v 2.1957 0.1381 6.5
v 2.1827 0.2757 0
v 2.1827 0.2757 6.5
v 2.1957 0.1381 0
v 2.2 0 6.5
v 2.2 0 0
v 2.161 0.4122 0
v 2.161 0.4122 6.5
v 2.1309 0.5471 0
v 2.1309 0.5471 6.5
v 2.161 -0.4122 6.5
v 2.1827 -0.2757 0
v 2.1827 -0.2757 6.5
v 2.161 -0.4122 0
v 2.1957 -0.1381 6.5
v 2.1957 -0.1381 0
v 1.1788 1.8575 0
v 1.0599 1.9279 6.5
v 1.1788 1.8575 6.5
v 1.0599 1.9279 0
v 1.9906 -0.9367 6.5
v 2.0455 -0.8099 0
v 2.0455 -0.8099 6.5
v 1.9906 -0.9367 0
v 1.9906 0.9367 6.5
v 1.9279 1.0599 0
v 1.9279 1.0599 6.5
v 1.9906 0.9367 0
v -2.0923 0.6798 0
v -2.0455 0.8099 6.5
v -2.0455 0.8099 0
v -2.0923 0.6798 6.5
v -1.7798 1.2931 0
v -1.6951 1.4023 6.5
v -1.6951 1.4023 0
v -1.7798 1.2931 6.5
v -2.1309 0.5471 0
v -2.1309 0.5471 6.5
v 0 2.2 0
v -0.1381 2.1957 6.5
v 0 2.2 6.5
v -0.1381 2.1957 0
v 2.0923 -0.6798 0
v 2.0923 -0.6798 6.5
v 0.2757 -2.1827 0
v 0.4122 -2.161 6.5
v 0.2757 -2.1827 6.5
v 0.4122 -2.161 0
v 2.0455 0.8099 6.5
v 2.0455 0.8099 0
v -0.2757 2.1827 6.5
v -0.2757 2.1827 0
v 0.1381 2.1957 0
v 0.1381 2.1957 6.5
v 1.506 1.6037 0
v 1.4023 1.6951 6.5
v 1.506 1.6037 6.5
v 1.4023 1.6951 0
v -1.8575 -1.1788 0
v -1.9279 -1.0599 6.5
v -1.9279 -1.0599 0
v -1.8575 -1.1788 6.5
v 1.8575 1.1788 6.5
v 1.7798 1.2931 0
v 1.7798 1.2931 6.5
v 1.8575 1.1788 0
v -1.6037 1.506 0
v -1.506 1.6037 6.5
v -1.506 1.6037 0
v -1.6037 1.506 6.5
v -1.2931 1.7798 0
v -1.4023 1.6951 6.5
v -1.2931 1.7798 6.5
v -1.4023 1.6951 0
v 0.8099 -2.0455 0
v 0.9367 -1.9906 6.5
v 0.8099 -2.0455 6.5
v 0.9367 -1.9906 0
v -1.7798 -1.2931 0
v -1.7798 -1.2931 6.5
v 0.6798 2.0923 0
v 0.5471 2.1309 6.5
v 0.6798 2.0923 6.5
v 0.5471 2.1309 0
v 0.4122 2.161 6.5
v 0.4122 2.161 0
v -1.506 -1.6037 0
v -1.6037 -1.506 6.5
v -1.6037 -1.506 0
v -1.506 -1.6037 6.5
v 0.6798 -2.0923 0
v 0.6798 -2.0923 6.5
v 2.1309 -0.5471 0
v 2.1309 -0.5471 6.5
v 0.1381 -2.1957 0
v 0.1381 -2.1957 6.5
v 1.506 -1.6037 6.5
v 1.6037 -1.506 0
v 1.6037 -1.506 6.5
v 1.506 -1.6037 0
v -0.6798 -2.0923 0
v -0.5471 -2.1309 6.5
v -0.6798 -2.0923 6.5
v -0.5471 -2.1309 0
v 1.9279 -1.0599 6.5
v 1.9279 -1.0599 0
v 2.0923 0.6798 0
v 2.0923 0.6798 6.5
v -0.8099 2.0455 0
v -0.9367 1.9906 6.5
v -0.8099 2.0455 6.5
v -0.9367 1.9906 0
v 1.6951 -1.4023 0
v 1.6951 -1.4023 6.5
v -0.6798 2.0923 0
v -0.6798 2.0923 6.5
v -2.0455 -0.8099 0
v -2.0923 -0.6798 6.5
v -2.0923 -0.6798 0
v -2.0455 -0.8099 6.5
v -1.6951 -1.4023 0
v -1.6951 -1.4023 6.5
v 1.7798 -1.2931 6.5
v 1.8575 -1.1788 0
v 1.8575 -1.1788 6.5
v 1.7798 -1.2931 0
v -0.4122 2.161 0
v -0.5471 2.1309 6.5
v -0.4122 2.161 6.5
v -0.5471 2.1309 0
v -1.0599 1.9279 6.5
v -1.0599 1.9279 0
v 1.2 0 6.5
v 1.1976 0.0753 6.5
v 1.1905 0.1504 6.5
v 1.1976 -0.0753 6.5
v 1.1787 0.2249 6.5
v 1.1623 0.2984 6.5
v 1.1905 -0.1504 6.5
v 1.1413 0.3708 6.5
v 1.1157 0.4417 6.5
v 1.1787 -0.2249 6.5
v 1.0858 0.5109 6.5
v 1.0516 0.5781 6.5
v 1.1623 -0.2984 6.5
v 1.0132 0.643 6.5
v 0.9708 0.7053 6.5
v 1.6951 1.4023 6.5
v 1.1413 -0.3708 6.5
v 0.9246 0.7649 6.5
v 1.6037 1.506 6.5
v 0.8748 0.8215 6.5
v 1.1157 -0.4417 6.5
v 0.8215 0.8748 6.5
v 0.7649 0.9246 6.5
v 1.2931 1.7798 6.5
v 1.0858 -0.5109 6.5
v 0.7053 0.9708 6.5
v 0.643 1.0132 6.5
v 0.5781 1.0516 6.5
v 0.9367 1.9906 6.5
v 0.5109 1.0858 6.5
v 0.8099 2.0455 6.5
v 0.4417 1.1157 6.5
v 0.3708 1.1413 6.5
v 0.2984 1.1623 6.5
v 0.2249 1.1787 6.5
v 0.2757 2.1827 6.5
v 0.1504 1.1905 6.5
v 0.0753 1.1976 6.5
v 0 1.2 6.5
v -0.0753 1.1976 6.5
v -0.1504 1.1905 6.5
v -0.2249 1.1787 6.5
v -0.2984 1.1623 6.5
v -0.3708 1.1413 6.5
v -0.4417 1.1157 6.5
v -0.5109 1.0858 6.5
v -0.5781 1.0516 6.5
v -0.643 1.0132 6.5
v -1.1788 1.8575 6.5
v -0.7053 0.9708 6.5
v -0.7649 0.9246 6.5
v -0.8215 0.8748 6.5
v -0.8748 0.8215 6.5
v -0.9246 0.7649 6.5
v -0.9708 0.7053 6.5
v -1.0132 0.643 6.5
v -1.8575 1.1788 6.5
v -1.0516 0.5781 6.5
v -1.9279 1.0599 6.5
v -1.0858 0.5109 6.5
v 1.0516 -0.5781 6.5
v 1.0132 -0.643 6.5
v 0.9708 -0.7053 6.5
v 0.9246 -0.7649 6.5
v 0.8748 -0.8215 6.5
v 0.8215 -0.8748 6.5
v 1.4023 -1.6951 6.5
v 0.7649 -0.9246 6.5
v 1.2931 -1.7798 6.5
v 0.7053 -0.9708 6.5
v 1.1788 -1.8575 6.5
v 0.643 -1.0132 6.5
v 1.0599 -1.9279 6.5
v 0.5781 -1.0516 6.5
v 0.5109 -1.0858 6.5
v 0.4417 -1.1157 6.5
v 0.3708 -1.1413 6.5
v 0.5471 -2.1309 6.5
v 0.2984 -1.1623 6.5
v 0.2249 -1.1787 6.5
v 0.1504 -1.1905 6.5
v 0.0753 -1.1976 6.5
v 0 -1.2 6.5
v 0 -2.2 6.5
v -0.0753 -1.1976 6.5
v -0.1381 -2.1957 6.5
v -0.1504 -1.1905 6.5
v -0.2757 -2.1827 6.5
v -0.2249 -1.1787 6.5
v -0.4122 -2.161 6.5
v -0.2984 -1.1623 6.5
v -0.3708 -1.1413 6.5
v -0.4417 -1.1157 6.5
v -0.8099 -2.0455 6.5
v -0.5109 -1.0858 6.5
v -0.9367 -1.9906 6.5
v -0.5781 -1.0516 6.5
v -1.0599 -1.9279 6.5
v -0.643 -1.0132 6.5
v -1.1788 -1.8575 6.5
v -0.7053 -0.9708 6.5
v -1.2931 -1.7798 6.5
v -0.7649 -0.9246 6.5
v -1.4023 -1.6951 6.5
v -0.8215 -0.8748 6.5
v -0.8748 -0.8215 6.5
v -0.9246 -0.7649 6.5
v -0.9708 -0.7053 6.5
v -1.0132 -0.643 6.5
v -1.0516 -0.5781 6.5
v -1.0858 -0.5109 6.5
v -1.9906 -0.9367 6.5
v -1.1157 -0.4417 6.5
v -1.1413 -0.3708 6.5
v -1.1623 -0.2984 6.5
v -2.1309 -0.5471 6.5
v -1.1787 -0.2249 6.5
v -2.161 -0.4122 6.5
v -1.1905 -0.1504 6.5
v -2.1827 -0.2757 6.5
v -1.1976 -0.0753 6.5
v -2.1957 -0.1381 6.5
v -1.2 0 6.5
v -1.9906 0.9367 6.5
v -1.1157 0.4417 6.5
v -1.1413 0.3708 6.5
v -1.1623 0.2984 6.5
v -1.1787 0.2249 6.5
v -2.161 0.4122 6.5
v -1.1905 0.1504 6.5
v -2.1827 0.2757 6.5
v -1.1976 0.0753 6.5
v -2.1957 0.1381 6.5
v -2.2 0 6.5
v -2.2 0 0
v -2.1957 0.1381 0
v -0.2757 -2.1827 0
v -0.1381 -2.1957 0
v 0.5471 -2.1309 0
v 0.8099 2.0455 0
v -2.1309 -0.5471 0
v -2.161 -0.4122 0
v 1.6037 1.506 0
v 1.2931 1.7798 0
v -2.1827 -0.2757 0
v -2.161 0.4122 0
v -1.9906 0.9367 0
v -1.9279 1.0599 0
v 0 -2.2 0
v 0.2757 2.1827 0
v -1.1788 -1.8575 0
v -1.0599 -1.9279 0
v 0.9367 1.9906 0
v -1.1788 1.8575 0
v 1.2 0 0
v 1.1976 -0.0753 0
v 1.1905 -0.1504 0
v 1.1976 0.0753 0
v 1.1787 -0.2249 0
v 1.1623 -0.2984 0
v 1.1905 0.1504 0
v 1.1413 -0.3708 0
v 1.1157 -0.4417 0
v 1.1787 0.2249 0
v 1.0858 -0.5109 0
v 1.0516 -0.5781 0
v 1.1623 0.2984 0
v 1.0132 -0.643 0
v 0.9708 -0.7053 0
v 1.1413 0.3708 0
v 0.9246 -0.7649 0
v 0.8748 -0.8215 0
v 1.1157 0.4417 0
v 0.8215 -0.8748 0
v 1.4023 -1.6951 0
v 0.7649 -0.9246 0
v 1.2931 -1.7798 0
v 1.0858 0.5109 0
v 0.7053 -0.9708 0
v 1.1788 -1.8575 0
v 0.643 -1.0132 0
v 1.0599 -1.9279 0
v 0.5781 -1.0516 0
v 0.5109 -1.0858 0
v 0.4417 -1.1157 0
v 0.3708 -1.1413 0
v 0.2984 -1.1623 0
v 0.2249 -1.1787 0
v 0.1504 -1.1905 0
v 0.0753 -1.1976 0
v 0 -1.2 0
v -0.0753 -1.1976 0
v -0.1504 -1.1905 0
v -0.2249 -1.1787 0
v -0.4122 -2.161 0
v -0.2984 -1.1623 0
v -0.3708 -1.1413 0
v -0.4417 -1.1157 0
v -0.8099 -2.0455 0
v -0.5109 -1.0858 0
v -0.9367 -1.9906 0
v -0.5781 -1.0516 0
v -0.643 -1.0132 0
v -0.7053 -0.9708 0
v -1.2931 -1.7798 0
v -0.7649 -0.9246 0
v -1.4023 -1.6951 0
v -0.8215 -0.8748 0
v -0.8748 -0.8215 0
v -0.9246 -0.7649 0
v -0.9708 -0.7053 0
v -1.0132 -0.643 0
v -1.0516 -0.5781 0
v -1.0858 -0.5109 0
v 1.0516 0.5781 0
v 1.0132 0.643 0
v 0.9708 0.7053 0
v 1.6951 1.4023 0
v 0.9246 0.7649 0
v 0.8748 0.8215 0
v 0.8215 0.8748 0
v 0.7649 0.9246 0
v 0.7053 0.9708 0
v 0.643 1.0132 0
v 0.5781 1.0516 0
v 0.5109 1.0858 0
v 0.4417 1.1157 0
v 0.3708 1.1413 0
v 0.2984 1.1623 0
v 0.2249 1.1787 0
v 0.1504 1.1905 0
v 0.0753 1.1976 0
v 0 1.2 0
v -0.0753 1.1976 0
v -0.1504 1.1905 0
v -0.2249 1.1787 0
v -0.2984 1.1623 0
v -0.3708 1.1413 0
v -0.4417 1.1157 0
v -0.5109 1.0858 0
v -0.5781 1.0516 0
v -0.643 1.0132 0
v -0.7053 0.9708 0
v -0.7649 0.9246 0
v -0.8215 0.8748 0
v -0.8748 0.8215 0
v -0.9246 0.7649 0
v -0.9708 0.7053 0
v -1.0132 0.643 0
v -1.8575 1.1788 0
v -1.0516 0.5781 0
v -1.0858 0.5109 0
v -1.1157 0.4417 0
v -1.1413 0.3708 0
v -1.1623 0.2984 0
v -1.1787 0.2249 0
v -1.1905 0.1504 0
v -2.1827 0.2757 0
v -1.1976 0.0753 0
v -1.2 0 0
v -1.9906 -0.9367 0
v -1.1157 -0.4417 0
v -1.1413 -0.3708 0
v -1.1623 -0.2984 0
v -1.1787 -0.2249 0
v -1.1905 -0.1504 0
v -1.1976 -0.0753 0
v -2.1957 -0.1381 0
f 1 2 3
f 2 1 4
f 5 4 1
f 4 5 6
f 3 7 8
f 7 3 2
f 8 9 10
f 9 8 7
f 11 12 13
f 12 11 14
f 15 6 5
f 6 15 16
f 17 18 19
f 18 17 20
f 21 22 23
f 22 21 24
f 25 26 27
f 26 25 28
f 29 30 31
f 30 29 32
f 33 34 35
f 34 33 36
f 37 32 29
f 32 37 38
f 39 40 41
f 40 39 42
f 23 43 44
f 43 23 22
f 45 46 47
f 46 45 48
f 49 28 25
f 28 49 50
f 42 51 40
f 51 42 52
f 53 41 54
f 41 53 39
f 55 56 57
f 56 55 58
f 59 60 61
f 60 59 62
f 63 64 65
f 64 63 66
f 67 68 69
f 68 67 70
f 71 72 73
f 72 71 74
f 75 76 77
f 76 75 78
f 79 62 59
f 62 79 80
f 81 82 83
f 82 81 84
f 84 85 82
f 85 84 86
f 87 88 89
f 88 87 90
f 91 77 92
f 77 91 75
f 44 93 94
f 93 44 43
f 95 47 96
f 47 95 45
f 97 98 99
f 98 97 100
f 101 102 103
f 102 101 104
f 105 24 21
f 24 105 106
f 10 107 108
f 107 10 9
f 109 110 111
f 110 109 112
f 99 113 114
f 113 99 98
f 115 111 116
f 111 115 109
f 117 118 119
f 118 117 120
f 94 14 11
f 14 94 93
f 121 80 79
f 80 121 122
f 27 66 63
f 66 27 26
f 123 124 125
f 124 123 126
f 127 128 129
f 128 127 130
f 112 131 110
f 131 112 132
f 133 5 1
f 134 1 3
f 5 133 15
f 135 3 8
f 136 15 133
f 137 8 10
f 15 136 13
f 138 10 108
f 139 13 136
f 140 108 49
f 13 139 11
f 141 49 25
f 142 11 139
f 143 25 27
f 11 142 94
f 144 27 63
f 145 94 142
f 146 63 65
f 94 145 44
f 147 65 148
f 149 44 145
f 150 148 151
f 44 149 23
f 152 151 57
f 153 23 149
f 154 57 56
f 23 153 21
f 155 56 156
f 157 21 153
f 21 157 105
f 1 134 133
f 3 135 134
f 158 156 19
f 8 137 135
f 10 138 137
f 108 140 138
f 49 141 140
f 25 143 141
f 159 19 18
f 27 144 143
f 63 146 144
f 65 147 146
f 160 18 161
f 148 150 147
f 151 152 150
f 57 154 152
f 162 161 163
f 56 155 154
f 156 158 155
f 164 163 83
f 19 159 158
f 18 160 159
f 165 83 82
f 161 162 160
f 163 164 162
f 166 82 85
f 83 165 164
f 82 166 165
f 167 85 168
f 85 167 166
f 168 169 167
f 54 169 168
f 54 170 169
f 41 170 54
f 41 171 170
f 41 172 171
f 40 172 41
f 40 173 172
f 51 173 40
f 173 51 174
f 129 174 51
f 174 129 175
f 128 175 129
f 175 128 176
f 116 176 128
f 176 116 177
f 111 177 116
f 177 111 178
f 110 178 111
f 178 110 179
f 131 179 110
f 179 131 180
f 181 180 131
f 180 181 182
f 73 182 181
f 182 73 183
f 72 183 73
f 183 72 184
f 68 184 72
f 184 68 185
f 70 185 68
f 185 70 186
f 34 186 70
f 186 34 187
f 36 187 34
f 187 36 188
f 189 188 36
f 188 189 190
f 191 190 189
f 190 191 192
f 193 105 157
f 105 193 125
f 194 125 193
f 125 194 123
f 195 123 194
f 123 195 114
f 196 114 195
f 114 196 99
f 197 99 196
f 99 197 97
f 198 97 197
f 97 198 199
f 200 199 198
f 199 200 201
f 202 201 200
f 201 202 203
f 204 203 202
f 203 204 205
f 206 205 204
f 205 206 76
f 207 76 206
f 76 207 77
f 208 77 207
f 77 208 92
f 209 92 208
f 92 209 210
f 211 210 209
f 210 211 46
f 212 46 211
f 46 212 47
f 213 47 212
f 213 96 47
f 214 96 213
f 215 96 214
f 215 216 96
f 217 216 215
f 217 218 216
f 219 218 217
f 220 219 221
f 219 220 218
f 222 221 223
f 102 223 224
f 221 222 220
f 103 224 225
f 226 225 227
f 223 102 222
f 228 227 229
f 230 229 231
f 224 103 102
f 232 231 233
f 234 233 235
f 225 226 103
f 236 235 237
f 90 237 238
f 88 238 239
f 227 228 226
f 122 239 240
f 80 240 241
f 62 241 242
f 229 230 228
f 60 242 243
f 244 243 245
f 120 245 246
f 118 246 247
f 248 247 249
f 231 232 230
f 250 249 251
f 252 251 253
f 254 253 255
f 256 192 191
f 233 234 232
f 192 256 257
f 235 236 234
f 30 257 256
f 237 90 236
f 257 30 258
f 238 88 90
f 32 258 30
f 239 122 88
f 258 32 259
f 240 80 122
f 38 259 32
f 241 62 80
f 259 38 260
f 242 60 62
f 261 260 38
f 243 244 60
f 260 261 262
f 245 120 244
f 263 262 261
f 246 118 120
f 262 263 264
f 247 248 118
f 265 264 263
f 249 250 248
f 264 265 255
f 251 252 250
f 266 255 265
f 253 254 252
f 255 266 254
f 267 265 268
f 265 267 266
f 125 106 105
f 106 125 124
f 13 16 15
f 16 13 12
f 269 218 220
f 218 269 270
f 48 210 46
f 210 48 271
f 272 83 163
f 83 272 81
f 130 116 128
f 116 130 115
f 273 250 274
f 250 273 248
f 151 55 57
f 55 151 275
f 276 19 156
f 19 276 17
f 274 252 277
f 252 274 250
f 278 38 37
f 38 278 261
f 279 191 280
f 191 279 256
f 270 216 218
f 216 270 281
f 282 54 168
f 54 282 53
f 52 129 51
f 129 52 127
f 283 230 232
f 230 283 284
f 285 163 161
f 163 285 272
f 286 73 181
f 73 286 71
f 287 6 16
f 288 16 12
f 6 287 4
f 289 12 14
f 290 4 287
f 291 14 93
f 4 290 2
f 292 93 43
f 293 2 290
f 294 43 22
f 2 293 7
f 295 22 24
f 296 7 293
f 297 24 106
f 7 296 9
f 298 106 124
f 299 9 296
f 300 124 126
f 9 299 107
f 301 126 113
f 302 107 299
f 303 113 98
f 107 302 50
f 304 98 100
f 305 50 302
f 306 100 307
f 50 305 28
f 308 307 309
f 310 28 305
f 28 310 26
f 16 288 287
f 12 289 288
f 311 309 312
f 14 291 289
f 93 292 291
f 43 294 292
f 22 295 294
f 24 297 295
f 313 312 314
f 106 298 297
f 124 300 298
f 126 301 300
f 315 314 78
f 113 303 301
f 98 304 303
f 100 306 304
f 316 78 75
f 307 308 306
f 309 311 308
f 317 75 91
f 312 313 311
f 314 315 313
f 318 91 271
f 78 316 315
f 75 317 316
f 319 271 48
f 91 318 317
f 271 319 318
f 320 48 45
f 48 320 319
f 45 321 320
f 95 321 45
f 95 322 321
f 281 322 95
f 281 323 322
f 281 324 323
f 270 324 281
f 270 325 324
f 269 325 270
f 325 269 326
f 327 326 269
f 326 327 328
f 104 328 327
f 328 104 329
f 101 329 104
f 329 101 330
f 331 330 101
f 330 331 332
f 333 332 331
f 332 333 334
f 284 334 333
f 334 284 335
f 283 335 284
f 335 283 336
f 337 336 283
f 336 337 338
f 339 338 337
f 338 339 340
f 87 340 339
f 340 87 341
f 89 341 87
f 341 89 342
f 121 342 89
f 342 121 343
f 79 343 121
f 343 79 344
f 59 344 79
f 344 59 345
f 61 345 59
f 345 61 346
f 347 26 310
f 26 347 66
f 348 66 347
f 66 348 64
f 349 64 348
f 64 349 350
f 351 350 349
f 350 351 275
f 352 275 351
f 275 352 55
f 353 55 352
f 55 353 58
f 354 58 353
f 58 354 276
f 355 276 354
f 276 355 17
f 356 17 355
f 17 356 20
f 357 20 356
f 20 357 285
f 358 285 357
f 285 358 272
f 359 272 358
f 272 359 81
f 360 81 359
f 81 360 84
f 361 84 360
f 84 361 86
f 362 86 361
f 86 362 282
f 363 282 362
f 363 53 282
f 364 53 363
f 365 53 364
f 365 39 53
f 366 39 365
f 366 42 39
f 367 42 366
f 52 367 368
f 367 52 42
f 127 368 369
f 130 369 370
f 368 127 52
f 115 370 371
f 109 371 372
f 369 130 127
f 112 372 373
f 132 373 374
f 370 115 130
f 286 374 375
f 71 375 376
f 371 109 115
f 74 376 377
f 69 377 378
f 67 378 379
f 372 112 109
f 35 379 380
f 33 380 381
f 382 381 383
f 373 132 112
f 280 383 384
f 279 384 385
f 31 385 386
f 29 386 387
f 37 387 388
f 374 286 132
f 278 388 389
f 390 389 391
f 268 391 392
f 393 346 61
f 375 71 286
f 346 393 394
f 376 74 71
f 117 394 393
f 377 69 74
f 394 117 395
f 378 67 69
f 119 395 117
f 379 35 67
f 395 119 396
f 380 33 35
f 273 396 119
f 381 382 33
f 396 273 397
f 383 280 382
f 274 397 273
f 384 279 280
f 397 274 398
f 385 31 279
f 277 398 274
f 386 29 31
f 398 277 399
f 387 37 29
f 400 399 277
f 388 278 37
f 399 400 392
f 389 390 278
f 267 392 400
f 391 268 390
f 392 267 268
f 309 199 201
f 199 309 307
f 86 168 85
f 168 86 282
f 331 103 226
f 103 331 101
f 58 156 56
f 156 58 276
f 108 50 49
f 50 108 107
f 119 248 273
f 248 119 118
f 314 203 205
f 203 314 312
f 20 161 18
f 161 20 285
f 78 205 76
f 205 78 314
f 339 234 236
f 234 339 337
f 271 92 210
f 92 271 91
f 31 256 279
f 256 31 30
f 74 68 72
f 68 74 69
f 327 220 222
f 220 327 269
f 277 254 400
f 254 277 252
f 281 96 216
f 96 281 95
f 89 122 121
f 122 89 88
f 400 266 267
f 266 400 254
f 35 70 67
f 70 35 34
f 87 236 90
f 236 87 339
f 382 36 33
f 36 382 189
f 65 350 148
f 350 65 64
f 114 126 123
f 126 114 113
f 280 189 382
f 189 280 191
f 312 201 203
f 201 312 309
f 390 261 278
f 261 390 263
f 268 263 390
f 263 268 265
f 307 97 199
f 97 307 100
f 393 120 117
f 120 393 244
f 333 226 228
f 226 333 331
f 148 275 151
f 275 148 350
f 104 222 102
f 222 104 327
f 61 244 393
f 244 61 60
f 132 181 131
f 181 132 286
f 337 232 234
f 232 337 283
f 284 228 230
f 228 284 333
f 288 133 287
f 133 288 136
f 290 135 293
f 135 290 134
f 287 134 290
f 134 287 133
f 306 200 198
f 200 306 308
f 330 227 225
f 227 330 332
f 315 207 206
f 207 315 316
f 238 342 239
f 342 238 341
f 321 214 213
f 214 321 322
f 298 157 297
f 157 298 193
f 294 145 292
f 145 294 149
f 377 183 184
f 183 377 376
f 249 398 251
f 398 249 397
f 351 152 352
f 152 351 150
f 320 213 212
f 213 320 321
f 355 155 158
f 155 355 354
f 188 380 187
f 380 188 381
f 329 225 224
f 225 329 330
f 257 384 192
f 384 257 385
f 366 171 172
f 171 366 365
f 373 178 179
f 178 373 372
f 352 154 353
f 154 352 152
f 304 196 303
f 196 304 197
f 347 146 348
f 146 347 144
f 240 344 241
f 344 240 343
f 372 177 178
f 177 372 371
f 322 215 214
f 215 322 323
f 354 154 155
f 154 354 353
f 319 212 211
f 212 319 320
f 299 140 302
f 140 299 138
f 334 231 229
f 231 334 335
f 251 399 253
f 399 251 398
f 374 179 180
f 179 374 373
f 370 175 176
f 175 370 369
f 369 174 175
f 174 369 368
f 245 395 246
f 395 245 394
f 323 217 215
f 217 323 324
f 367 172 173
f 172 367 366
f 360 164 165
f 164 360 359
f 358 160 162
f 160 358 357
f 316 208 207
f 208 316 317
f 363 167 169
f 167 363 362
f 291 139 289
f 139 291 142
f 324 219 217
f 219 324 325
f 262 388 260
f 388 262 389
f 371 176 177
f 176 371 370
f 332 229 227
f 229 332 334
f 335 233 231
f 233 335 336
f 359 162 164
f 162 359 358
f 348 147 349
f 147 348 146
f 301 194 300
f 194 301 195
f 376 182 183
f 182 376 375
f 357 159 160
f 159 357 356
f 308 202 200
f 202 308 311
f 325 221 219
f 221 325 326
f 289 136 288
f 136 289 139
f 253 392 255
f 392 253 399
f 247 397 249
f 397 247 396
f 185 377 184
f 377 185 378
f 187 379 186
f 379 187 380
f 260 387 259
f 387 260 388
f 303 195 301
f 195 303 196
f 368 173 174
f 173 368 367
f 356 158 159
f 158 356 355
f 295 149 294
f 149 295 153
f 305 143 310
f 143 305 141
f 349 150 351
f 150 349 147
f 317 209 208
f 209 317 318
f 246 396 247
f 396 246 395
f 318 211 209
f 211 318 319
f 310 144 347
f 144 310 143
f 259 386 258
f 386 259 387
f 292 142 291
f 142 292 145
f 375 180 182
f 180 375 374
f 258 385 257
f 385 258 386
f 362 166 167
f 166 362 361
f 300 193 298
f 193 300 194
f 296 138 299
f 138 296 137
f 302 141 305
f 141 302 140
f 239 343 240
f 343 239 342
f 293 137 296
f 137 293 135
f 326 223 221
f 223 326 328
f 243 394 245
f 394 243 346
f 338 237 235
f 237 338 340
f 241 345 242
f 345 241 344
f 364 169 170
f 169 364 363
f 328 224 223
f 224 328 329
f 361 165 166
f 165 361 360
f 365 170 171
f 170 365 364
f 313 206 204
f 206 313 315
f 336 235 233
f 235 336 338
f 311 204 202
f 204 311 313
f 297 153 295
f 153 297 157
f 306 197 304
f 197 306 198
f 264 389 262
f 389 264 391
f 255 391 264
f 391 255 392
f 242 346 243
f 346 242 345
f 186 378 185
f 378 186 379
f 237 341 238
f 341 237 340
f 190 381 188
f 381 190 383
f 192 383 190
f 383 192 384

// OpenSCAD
// Start config

// Standoffs
length = 6.5; //mm
diameter = 2+0.4; //mm (m2 + 0.4mm clearance)
wall_thickness = 1;//mm
// Misc
resolution = 100;
// End config

// Modeling
difference(){
    cylinder(length,diameter/2+wall_thickness,diameter/2+wall_thickness,$fn=resolution);
    cylinder(length,diameter/2,diameter/2,$fn=resolution);
   }
